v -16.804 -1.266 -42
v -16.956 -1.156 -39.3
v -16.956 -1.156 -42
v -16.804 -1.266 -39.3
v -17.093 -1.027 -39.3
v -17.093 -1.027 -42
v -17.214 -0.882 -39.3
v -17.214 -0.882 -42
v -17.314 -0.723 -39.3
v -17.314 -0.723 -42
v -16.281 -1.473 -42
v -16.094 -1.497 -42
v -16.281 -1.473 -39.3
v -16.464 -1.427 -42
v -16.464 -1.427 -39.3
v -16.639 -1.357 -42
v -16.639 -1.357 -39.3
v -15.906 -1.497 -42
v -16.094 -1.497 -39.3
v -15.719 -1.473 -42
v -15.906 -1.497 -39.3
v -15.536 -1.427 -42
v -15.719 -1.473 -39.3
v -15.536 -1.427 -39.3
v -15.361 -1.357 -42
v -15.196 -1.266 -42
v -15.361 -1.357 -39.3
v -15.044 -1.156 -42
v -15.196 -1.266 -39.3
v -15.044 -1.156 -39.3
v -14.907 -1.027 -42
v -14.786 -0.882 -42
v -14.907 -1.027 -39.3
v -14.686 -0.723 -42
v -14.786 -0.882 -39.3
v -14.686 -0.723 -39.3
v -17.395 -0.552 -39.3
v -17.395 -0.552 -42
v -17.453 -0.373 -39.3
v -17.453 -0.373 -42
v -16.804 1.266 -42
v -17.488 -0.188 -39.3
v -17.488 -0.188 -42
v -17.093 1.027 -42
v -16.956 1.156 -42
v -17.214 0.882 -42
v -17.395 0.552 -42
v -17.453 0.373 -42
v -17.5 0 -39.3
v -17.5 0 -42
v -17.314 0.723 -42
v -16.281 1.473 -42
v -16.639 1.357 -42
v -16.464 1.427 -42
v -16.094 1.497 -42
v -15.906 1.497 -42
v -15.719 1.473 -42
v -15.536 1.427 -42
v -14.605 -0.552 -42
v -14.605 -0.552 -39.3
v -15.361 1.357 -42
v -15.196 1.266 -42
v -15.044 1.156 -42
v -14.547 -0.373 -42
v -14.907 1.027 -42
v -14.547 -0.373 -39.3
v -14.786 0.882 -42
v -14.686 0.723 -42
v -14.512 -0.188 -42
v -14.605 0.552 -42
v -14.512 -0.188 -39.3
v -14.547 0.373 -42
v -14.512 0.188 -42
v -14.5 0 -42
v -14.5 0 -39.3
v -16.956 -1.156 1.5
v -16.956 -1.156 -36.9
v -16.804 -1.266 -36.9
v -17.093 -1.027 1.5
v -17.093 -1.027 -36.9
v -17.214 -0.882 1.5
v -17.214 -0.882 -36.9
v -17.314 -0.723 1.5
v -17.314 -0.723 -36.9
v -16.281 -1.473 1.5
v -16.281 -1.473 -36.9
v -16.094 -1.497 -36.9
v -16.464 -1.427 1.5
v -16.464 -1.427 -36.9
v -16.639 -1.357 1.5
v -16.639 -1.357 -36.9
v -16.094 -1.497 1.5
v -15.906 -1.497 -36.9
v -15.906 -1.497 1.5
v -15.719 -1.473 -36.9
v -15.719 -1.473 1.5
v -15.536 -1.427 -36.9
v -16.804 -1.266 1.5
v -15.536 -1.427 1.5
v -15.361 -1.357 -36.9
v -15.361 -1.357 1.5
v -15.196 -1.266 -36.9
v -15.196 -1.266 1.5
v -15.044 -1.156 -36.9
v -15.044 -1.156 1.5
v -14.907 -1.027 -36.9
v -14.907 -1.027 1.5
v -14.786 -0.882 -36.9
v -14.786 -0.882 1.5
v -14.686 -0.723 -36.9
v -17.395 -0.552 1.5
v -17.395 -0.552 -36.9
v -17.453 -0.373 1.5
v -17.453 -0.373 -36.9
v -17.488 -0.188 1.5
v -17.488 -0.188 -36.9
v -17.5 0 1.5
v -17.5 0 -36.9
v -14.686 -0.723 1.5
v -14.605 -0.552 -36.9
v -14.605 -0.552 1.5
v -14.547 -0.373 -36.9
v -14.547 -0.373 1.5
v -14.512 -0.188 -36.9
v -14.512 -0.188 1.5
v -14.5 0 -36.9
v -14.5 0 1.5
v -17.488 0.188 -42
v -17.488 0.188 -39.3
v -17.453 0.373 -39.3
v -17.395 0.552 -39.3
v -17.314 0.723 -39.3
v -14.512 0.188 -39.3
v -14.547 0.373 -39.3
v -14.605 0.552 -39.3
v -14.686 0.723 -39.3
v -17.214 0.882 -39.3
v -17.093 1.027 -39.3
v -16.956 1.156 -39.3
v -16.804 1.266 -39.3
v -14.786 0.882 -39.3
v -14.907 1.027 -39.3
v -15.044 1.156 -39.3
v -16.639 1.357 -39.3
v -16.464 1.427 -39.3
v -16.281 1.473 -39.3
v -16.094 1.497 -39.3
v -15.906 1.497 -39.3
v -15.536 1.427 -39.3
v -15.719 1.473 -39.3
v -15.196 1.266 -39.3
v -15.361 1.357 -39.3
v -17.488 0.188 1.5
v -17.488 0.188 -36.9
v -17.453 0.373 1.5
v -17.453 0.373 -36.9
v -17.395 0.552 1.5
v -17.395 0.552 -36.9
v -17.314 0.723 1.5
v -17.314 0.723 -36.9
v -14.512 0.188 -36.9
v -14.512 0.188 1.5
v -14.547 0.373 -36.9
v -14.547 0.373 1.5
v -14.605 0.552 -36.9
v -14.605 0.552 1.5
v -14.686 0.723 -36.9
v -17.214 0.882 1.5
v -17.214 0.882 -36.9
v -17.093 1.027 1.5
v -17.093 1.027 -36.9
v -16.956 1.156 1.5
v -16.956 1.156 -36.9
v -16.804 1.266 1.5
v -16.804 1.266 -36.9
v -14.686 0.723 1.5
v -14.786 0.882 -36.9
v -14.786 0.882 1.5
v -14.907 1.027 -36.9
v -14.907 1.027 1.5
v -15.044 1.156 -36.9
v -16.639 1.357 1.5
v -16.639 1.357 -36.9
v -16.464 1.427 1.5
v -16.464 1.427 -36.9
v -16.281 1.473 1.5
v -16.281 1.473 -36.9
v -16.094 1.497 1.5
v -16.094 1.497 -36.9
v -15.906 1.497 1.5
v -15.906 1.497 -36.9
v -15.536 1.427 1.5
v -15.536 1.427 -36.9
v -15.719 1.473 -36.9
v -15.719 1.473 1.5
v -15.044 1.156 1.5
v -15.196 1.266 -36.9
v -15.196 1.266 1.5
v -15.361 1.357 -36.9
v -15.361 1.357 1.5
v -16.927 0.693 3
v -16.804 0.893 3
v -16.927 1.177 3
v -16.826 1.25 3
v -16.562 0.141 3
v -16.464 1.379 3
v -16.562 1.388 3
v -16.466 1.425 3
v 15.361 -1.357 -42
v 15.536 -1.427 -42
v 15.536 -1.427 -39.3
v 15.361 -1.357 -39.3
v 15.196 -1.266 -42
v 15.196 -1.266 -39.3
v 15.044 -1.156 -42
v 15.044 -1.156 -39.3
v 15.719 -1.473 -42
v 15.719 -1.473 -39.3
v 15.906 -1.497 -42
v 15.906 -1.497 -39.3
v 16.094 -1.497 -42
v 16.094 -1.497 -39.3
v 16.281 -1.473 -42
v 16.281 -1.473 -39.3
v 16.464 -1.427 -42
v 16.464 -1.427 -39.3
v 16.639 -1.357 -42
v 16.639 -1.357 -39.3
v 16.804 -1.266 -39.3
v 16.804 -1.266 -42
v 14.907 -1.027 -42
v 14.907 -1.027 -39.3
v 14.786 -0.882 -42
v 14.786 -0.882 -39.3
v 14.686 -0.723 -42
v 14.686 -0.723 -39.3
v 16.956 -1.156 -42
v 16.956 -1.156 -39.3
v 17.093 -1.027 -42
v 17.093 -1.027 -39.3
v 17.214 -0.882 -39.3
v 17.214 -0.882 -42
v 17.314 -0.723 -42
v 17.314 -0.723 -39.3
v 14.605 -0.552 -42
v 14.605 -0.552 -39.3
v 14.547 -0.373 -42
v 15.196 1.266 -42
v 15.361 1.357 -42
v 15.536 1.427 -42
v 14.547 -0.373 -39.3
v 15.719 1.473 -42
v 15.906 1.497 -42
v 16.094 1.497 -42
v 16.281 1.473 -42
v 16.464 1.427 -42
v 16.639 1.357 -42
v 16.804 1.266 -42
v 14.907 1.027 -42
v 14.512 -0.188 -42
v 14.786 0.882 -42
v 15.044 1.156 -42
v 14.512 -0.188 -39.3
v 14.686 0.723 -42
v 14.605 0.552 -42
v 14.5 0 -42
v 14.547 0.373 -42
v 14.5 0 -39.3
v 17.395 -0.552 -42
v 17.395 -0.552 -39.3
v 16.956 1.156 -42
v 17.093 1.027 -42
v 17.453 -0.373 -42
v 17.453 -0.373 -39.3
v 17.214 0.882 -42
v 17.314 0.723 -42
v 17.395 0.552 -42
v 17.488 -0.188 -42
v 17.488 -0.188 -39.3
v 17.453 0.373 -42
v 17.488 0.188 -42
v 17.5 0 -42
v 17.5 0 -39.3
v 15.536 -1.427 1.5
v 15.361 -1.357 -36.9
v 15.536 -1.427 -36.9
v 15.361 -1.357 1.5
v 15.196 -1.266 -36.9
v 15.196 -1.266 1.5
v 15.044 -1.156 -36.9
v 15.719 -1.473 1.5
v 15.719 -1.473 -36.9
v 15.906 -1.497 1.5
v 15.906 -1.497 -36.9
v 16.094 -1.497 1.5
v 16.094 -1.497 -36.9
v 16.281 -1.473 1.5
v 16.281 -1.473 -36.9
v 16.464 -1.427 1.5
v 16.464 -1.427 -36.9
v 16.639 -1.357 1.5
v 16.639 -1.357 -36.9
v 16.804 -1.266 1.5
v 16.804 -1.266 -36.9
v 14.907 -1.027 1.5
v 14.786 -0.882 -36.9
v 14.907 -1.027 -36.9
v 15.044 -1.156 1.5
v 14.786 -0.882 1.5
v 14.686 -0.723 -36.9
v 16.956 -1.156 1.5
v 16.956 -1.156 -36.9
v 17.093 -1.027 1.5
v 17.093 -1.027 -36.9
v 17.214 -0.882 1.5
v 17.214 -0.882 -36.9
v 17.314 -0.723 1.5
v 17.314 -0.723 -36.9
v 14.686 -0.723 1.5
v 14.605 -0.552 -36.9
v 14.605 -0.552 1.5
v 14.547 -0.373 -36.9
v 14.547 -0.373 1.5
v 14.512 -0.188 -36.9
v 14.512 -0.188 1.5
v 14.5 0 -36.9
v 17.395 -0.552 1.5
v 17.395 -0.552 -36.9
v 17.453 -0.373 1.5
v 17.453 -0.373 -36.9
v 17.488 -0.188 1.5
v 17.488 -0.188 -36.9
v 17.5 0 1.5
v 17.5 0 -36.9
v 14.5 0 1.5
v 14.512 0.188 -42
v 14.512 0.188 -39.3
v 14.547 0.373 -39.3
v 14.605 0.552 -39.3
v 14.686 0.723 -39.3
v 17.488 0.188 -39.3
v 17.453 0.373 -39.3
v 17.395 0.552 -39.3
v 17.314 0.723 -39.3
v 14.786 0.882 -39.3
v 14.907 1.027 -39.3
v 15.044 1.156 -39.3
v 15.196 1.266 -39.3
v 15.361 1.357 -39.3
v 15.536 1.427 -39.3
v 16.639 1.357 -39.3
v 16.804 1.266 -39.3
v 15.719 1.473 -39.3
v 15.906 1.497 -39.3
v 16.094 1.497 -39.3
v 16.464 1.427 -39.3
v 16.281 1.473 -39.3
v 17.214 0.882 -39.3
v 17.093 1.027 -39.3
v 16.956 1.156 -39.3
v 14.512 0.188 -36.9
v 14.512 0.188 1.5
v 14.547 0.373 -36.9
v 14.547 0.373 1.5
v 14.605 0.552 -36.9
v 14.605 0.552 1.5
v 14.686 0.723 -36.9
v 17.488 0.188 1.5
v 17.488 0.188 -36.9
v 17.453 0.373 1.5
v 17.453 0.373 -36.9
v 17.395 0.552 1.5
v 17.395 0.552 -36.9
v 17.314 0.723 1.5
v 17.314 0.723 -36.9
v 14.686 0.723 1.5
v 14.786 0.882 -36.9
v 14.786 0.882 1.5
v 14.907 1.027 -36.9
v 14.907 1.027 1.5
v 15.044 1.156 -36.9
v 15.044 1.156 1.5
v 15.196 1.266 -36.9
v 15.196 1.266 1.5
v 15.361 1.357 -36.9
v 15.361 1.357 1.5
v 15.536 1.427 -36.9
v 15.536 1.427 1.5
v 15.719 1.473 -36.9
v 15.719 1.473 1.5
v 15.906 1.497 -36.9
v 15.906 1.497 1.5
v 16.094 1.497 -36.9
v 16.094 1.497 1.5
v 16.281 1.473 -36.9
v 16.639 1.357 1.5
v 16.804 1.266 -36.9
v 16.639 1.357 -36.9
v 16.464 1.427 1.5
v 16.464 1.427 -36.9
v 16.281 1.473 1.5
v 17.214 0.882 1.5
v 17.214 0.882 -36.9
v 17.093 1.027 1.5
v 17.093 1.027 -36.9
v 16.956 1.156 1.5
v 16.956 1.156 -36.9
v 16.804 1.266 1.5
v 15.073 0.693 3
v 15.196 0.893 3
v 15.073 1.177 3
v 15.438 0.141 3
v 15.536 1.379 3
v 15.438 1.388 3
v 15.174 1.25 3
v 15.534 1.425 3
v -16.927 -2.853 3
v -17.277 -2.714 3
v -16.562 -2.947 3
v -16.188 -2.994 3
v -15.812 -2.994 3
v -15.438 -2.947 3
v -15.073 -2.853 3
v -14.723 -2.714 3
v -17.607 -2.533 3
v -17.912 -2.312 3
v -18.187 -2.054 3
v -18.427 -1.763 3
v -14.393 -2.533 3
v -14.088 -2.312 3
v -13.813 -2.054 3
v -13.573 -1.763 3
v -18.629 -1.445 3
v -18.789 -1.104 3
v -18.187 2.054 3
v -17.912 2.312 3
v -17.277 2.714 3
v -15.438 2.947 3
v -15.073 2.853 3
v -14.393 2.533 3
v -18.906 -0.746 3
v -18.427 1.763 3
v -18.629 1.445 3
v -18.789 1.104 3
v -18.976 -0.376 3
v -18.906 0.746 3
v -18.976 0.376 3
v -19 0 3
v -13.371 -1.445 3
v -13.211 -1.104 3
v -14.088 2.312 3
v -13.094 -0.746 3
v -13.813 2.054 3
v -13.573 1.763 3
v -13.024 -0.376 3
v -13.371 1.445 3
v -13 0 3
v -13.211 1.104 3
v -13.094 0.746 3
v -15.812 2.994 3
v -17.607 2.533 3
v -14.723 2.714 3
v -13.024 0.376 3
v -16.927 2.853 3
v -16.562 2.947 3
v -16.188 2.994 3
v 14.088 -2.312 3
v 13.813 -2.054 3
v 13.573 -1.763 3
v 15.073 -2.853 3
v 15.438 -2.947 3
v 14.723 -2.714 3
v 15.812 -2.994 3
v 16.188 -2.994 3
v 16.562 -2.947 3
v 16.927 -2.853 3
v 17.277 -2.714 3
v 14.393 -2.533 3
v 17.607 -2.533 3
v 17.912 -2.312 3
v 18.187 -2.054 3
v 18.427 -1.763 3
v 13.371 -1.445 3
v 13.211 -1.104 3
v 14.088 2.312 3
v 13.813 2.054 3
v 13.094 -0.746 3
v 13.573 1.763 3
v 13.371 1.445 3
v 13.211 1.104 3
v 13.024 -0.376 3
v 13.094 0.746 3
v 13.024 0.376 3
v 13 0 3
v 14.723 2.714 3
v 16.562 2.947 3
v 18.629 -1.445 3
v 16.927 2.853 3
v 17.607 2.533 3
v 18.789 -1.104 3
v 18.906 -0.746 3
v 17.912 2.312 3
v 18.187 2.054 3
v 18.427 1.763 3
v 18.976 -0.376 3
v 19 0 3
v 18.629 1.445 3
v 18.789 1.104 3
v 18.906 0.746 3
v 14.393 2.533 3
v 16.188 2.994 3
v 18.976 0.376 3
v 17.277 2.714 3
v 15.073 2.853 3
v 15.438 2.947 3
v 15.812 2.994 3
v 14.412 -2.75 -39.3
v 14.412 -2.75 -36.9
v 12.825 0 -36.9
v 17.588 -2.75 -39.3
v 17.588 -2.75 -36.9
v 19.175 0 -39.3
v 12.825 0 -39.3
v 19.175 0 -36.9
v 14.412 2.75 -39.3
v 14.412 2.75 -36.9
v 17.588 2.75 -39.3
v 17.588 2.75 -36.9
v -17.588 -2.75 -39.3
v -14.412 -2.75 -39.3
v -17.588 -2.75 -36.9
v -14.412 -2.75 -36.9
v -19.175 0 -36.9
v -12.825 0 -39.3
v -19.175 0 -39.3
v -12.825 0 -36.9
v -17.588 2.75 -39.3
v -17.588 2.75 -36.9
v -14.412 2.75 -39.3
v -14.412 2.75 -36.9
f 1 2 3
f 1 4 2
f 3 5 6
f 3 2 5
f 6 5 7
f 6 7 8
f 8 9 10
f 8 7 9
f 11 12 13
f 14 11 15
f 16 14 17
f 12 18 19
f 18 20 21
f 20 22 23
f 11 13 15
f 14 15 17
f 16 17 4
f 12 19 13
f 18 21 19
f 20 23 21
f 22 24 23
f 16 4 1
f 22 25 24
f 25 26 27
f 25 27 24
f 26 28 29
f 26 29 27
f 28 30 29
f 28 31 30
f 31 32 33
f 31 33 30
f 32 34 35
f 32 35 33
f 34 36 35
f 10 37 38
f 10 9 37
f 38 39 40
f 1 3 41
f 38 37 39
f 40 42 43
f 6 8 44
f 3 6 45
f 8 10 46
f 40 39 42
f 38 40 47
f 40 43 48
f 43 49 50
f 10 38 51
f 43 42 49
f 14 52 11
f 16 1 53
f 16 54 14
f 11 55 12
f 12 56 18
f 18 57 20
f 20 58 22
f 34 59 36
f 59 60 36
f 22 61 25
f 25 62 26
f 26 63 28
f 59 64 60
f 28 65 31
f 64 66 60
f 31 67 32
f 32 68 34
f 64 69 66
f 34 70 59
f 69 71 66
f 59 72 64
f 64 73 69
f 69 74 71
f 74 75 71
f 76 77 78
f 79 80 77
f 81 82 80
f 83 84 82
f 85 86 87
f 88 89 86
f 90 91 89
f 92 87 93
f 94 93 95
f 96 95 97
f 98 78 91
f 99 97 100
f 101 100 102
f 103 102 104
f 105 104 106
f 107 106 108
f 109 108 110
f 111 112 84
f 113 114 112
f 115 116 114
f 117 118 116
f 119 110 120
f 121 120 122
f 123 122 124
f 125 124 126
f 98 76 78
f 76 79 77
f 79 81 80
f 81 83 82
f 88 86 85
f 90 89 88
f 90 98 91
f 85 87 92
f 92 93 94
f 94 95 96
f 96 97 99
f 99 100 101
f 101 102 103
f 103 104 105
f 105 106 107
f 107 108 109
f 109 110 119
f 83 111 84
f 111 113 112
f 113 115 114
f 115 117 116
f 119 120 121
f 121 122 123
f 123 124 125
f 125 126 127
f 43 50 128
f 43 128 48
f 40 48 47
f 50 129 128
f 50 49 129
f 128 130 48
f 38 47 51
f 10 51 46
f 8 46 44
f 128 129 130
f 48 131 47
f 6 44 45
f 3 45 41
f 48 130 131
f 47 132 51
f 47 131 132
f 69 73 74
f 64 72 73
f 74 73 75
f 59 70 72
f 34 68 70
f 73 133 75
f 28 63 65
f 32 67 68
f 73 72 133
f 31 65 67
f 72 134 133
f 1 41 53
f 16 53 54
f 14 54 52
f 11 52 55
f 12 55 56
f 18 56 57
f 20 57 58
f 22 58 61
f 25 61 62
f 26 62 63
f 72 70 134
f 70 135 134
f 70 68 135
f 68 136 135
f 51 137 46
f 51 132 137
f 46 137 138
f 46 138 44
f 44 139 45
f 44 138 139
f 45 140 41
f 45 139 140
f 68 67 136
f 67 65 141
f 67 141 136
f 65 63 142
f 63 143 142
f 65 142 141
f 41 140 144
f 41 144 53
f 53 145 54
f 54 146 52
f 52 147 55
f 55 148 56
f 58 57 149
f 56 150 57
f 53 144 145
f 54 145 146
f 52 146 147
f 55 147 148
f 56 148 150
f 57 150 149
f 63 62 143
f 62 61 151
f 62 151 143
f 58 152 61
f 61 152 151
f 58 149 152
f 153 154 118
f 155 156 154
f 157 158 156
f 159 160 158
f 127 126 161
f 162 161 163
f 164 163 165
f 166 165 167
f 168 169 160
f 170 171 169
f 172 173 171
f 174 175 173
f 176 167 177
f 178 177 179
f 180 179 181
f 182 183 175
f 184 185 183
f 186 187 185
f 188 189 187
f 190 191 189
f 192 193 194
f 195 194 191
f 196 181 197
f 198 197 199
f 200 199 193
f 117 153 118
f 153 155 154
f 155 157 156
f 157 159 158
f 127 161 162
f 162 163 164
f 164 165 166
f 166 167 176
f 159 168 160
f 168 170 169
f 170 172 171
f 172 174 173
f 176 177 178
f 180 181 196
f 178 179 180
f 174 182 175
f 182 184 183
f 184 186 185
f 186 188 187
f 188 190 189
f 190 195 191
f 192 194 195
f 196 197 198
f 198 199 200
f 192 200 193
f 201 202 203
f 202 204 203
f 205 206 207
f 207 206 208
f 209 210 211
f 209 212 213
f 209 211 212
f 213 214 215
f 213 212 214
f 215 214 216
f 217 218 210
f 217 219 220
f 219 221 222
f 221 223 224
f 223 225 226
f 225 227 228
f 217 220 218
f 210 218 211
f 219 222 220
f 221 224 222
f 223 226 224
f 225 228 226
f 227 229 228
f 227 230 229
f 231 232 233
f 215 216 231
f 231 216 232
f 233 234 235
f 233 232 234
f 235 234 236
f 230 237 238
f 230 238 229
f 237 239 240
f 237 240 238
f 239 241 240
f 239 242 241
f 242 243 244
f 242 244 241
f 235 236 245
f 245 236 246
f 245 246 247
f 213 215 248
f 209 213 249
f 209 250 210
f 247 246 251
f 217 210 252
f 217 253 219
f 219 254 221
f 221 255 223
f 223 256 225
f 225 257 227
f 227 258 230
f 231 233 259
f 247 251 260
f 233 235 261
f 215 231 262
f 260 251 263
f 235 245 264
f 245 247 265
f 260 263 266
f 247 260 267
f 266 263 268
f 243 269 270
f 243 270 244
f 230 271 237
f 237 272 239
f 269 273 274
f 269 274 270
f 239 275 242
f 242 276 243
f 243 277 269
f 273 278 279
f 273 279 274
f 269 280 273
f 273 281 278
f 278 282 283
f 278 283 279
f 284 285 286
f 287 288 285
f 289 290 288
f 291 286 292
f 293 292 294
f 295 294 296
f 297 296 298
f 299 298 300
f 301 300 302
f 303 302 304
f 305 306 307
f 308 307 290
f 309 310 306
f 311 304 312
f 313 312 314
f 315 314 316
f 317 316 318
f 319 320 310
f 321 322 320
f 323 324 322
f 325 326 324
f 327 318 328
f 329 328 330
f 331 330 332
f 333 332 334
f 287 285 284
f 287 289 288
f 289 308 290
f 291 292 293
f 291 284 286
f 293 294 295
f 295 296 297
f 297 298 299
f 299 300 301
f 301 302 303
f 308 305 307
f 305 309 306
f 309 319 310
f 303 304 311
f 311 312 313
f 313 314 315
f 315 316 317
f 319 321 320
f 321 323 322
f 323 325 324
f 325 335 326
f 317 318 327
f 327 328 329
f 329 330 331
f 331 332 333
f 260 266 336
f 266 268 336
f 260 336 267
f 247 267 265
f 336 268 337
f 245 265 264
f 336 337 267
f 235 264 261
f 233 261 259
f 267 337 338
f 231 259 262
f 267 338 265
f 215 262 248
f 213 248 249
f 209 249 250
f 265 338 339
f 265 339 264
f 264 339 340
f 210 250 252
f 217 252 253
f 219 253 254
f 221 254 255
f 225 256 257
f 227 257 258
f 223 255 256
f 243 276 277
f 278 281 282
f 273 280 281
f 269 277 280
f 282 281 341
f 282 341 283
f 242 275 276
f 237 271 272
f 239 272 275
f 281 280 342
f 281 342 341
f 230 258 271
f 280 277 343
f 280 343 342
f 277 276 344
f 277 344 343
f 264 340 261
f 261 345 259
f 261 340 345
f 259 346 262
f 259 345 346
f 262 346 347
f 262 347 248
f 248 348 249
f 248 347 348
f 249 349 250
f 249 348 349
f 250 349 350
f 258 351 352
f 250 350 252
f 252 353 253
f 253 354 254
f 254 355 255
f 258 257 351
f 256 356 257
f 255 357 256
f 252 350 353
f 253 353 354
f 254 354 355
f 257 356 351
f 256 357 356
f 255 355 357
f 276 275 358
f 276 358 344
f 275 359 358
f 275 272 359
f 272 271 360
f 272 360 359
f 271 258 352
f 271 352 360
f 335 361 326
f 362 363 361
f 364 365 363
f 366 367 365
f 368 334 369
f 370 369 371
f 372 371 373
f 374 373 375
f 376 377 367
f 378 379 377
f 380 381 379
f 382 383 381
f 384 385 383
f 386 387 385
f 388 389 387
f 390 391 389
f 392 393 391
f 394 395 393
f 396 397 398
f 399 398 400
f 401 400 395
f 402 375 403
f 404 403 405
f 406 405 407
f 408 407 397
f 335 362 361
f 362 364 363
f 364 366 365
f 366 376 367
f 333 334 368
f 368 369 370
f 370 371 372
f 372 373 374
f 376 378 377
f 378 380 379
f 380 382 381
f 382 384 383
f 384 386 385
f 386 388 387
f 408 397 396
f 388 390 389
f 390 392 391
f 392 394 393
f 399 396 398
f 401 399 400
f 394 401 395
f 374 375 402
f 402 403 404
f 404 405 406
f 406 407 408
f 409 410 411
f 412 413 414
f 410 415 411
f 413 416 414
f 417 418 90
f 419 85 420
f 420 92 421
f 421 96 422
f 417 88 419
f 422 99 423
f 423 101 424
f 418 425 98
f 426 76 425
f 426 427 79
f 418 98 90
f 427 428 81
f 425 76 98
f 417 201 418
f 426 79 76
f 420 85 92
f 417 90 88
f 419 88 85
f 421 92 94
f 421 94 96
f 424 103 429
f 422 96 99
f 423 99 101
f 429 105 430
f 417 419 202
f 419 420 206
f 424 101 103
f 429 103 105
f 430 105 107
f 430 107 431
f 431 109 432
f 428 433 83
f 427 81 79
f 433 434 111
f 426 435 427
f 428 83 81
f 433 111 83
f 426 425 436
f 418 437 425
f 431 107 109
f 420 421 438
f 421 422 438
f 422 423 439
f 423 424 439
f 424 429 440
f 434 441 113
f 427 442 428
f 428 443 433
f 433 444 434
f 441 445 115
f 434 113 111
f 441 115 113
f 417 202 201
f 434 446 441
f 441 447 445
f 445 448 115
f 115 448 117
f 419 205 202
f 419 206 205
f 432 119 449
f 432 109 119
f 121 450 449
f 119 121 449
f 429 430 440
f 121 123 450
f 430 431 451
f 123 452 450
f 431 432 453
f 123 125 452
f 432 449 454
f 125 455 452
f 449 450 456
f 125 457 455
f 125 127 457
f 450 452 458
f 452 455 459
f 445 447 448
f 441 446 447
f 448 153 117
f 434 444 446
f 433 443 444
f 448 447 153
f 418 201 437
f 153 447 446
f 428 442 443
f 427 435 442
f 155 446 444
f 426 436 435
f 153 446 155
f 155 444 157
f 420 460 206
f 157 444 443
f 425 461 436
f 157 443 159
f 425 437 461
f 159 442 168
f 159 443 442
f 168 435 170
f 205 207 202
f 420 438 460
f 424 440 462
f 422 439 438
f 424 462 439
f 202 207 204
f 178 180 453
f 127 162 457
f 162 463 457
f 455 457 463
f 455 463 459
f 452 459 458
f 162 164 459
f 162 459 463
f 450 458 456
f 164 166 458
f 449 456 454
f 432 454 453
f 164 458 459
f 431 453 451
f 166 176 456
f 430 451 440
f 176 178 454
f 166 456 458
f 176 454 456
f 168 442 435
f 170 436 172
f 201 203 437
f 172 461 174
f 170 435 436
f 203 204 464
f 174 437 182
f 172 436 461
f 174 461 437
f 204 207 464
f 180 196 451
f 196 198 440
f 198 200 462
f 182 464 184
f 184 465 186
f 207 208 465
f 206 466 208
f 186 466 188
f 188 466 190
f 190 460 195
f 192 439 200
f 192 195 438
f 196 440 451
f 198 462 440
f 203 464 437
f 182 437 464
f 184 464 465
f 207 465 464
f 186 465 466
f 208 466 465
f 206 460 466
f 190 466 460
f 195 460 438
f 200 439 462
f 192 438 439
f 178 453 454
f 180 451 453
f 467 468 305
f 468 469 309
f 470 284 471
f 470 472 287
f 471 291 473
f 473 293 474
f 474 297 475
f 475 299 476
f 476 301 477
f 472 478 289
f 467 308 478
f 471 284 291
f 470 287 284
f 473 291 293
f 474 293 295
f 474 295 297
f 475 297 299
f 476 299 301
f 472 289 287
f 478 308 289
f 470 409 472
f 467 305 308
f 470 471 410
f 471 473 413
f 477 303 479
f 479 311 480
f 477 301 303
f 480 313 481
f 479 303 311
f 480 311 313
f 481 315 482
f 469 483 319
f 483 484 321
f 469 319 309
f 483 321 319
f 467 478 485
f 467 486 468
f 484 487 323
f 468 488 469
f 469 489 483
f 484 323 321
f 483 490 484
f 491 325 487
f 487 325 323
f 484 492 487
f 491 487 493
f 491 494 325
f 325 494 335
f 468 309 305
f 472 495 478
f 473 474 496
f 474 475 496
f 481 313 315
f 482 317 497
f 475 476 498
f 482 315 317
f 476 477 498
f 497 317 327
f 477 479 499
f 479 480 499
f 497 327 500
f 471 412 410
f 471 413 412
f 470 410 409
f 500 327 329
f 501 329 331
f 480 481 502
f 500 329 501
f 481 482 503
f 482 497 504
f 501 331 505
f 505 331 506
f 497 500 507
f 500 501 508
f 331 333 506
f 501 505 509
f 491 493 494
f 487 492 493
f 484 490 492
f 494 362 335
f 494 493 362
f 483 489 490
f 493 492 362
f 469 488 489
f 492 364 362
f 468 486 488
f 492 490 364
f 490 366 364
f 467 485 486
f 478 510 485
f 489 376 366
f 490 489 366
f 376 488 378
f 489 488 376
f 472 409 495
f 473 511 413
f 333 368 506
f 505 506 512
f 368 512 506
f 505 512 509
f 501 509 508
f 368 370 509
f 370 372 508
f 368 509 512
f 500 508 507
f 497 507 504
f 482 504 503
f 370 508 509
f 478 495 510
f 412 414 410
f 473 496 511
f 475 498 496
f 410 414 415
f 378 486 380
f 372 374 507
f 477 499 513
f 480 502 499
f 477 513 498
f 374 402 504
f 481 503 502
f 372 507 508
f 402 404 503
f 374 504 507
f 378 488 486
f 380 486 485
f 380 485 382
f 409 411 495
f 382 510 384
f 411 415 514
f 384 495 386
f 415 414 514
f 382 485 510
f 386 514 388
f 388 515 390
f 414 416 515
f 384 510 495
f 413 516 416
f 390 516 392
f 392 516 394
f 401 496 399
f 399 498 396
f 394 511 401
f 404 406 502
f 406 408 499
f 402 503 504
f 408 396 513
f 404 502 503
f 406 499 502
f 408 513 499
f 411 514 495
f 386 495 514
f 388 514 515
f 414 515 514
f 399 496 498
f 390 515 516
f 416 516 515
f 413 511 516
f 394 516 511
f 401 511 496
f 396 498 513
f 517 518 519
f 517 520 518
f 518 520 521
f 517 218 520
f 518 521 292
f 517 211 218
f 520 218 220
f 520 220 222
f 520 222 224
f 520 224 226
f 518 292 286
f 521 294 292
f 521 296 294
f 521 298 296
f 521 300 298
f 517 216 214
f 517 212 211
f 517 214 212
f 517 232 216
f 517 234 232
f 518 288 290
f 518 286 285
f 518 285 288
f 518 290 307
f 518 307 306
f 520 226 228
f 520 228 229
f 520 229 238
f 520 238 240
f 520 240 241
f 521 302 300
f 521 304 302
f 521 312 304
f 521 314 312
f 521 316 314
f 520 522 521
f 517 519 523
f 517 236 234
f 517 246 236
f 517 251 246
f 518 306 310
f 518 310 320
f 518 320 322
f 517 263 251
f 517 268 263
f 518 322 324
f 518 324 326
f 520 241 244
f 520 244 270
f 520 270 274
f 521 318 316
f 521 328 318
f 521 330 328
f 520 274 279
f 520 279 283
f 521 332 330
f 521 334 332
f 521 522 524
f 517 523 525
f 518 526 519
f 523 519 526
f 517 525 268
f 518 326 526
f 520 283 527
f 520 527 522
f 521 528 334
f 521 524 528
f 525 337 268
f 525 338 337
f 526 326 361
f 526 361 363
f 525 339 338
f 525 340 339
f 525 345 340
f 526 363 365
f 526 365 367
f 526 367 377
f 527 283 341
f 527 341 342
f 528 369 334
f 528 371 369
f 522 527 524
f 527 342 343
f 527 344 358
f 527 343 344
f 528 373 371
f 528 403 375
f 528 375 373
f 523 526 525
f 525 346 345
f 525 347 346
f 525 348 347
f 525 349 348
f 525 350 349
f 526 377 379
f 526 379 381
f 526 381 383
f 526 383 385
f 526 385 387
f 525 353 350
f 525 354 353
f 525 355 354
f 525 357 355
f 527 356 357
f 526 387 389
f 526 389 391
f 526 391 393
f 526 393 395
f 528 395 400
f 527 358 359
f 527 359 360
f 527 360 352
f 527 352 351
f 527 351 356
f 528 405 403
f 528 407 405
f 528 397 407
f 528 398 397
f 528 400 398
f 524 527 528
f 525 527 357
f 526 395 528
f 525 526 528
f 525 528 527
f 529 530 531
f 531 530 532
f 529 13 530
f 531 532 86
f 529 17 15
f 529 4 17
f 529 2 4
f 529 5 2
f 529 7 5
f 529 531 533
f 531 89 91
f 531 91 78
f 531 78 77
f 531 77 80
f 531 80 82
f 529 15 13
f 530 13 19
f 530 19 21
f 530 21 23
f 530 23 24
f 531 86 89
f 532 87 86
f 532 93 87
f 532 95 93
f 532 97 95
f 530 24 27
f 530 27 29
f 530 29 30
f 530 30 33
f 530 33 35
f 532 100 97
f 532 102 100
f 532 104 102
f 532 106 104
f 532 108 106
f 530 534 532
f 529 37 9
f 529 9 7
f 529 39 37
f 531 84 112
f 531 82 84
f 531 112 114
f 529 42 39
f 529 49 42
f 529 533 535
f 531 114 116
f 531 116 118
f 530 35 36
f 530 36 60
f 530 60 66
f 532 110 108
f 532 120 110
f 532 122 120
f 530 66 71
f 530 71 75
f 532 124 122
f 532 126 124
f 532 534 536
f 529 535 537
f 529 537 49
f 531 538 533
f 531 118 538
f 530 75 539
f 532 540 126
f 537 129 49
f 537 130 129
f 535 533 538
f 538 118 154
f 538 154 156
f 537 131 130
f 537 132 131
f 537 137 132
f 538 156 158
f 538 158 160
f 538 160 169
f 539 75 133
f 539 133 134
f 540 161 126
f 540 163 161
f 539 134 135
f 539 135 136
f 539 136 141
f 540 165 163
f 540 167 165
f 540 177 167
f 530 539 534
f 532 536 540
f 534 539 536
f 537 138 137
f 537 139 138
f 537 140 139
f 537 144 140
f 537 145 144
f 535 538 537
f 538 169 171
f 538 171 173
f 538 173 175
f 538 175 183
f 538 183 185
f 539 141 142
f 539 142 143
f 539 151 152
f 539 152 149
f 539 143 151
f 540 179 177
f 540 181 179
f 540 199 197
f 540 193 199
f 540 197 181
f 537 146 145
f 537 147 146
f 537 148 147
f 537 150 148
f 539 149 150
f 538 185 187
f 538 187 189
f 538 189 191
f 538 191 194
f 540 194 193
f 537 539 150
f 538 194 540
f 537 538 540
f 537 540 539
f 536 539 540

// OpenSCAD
$fn = 50;

difference() {
	union() {
		translate(v = [-16, 0, 3]) {
			rotate(a = [0, 0, 0]) {
				difference() {
					union() {
						translate(v = [0, 0, -45.0]) {
							cylinder(h = 45, r = 1.5);
						}
						translate(v = [0, 0, -1.5]) {
							cylinder(h = 1.5, r1 = 1.5, r2 = 3);
						}
					}
					union();
				}
			}
		}
		translate(v = [-16, 0, -39.3]) {
			rotate(a = [0, 0, 0]) {
				difference() {
					union() {
						linear_extrude(height = 2.4) {
							polygon(points = [[3.1754264805429417, 0.0], [1.5877132402714713, 2.75], [-1.5877132402714702, 2.7500000000000004], [-3.1754264805429417, 3.888775875324659e-16], [-1.5877132402714722, -2.7499999999999996], [1.5877132402714687, -2.7500000000000013]]);
						}
					}
					union();
				}
			}
		}
		translate(v = [16, 0, 3]) {
			rotate(a = [0, 0, 0]) {
				difference() {
					union() {
						translate(v = [0, 0, -45.0]) {
							cylinder(h = 45, r = 1.5);
						}
						translate(v = [0, 0, -1.5]) {
							cylinder(h = 1.5, r1 = 1.5, r2 = 3);
						}
					}
					union();
				}
			}
		}
		translate(v = [16, 0, -39.3]) {
			rotate(a = [0, 0, 0]) {
				difference() {
					union() {
						linear_extrude(height = 2.4) {
							polygon(points = [[3.1754264805429417, 0.0], [1.5877132402714713, 2.75], [-1.5877132402714702, 2.7500000000000004], [-3.1754264805429417, 3.888775875324659e-16], [-1.5877132402714722, -2.7499999999999996], [1.5877132402714687, -2.7500000000000013]]);
						}
					}
					union();
				}
			}
		}
	}
	union();
}
